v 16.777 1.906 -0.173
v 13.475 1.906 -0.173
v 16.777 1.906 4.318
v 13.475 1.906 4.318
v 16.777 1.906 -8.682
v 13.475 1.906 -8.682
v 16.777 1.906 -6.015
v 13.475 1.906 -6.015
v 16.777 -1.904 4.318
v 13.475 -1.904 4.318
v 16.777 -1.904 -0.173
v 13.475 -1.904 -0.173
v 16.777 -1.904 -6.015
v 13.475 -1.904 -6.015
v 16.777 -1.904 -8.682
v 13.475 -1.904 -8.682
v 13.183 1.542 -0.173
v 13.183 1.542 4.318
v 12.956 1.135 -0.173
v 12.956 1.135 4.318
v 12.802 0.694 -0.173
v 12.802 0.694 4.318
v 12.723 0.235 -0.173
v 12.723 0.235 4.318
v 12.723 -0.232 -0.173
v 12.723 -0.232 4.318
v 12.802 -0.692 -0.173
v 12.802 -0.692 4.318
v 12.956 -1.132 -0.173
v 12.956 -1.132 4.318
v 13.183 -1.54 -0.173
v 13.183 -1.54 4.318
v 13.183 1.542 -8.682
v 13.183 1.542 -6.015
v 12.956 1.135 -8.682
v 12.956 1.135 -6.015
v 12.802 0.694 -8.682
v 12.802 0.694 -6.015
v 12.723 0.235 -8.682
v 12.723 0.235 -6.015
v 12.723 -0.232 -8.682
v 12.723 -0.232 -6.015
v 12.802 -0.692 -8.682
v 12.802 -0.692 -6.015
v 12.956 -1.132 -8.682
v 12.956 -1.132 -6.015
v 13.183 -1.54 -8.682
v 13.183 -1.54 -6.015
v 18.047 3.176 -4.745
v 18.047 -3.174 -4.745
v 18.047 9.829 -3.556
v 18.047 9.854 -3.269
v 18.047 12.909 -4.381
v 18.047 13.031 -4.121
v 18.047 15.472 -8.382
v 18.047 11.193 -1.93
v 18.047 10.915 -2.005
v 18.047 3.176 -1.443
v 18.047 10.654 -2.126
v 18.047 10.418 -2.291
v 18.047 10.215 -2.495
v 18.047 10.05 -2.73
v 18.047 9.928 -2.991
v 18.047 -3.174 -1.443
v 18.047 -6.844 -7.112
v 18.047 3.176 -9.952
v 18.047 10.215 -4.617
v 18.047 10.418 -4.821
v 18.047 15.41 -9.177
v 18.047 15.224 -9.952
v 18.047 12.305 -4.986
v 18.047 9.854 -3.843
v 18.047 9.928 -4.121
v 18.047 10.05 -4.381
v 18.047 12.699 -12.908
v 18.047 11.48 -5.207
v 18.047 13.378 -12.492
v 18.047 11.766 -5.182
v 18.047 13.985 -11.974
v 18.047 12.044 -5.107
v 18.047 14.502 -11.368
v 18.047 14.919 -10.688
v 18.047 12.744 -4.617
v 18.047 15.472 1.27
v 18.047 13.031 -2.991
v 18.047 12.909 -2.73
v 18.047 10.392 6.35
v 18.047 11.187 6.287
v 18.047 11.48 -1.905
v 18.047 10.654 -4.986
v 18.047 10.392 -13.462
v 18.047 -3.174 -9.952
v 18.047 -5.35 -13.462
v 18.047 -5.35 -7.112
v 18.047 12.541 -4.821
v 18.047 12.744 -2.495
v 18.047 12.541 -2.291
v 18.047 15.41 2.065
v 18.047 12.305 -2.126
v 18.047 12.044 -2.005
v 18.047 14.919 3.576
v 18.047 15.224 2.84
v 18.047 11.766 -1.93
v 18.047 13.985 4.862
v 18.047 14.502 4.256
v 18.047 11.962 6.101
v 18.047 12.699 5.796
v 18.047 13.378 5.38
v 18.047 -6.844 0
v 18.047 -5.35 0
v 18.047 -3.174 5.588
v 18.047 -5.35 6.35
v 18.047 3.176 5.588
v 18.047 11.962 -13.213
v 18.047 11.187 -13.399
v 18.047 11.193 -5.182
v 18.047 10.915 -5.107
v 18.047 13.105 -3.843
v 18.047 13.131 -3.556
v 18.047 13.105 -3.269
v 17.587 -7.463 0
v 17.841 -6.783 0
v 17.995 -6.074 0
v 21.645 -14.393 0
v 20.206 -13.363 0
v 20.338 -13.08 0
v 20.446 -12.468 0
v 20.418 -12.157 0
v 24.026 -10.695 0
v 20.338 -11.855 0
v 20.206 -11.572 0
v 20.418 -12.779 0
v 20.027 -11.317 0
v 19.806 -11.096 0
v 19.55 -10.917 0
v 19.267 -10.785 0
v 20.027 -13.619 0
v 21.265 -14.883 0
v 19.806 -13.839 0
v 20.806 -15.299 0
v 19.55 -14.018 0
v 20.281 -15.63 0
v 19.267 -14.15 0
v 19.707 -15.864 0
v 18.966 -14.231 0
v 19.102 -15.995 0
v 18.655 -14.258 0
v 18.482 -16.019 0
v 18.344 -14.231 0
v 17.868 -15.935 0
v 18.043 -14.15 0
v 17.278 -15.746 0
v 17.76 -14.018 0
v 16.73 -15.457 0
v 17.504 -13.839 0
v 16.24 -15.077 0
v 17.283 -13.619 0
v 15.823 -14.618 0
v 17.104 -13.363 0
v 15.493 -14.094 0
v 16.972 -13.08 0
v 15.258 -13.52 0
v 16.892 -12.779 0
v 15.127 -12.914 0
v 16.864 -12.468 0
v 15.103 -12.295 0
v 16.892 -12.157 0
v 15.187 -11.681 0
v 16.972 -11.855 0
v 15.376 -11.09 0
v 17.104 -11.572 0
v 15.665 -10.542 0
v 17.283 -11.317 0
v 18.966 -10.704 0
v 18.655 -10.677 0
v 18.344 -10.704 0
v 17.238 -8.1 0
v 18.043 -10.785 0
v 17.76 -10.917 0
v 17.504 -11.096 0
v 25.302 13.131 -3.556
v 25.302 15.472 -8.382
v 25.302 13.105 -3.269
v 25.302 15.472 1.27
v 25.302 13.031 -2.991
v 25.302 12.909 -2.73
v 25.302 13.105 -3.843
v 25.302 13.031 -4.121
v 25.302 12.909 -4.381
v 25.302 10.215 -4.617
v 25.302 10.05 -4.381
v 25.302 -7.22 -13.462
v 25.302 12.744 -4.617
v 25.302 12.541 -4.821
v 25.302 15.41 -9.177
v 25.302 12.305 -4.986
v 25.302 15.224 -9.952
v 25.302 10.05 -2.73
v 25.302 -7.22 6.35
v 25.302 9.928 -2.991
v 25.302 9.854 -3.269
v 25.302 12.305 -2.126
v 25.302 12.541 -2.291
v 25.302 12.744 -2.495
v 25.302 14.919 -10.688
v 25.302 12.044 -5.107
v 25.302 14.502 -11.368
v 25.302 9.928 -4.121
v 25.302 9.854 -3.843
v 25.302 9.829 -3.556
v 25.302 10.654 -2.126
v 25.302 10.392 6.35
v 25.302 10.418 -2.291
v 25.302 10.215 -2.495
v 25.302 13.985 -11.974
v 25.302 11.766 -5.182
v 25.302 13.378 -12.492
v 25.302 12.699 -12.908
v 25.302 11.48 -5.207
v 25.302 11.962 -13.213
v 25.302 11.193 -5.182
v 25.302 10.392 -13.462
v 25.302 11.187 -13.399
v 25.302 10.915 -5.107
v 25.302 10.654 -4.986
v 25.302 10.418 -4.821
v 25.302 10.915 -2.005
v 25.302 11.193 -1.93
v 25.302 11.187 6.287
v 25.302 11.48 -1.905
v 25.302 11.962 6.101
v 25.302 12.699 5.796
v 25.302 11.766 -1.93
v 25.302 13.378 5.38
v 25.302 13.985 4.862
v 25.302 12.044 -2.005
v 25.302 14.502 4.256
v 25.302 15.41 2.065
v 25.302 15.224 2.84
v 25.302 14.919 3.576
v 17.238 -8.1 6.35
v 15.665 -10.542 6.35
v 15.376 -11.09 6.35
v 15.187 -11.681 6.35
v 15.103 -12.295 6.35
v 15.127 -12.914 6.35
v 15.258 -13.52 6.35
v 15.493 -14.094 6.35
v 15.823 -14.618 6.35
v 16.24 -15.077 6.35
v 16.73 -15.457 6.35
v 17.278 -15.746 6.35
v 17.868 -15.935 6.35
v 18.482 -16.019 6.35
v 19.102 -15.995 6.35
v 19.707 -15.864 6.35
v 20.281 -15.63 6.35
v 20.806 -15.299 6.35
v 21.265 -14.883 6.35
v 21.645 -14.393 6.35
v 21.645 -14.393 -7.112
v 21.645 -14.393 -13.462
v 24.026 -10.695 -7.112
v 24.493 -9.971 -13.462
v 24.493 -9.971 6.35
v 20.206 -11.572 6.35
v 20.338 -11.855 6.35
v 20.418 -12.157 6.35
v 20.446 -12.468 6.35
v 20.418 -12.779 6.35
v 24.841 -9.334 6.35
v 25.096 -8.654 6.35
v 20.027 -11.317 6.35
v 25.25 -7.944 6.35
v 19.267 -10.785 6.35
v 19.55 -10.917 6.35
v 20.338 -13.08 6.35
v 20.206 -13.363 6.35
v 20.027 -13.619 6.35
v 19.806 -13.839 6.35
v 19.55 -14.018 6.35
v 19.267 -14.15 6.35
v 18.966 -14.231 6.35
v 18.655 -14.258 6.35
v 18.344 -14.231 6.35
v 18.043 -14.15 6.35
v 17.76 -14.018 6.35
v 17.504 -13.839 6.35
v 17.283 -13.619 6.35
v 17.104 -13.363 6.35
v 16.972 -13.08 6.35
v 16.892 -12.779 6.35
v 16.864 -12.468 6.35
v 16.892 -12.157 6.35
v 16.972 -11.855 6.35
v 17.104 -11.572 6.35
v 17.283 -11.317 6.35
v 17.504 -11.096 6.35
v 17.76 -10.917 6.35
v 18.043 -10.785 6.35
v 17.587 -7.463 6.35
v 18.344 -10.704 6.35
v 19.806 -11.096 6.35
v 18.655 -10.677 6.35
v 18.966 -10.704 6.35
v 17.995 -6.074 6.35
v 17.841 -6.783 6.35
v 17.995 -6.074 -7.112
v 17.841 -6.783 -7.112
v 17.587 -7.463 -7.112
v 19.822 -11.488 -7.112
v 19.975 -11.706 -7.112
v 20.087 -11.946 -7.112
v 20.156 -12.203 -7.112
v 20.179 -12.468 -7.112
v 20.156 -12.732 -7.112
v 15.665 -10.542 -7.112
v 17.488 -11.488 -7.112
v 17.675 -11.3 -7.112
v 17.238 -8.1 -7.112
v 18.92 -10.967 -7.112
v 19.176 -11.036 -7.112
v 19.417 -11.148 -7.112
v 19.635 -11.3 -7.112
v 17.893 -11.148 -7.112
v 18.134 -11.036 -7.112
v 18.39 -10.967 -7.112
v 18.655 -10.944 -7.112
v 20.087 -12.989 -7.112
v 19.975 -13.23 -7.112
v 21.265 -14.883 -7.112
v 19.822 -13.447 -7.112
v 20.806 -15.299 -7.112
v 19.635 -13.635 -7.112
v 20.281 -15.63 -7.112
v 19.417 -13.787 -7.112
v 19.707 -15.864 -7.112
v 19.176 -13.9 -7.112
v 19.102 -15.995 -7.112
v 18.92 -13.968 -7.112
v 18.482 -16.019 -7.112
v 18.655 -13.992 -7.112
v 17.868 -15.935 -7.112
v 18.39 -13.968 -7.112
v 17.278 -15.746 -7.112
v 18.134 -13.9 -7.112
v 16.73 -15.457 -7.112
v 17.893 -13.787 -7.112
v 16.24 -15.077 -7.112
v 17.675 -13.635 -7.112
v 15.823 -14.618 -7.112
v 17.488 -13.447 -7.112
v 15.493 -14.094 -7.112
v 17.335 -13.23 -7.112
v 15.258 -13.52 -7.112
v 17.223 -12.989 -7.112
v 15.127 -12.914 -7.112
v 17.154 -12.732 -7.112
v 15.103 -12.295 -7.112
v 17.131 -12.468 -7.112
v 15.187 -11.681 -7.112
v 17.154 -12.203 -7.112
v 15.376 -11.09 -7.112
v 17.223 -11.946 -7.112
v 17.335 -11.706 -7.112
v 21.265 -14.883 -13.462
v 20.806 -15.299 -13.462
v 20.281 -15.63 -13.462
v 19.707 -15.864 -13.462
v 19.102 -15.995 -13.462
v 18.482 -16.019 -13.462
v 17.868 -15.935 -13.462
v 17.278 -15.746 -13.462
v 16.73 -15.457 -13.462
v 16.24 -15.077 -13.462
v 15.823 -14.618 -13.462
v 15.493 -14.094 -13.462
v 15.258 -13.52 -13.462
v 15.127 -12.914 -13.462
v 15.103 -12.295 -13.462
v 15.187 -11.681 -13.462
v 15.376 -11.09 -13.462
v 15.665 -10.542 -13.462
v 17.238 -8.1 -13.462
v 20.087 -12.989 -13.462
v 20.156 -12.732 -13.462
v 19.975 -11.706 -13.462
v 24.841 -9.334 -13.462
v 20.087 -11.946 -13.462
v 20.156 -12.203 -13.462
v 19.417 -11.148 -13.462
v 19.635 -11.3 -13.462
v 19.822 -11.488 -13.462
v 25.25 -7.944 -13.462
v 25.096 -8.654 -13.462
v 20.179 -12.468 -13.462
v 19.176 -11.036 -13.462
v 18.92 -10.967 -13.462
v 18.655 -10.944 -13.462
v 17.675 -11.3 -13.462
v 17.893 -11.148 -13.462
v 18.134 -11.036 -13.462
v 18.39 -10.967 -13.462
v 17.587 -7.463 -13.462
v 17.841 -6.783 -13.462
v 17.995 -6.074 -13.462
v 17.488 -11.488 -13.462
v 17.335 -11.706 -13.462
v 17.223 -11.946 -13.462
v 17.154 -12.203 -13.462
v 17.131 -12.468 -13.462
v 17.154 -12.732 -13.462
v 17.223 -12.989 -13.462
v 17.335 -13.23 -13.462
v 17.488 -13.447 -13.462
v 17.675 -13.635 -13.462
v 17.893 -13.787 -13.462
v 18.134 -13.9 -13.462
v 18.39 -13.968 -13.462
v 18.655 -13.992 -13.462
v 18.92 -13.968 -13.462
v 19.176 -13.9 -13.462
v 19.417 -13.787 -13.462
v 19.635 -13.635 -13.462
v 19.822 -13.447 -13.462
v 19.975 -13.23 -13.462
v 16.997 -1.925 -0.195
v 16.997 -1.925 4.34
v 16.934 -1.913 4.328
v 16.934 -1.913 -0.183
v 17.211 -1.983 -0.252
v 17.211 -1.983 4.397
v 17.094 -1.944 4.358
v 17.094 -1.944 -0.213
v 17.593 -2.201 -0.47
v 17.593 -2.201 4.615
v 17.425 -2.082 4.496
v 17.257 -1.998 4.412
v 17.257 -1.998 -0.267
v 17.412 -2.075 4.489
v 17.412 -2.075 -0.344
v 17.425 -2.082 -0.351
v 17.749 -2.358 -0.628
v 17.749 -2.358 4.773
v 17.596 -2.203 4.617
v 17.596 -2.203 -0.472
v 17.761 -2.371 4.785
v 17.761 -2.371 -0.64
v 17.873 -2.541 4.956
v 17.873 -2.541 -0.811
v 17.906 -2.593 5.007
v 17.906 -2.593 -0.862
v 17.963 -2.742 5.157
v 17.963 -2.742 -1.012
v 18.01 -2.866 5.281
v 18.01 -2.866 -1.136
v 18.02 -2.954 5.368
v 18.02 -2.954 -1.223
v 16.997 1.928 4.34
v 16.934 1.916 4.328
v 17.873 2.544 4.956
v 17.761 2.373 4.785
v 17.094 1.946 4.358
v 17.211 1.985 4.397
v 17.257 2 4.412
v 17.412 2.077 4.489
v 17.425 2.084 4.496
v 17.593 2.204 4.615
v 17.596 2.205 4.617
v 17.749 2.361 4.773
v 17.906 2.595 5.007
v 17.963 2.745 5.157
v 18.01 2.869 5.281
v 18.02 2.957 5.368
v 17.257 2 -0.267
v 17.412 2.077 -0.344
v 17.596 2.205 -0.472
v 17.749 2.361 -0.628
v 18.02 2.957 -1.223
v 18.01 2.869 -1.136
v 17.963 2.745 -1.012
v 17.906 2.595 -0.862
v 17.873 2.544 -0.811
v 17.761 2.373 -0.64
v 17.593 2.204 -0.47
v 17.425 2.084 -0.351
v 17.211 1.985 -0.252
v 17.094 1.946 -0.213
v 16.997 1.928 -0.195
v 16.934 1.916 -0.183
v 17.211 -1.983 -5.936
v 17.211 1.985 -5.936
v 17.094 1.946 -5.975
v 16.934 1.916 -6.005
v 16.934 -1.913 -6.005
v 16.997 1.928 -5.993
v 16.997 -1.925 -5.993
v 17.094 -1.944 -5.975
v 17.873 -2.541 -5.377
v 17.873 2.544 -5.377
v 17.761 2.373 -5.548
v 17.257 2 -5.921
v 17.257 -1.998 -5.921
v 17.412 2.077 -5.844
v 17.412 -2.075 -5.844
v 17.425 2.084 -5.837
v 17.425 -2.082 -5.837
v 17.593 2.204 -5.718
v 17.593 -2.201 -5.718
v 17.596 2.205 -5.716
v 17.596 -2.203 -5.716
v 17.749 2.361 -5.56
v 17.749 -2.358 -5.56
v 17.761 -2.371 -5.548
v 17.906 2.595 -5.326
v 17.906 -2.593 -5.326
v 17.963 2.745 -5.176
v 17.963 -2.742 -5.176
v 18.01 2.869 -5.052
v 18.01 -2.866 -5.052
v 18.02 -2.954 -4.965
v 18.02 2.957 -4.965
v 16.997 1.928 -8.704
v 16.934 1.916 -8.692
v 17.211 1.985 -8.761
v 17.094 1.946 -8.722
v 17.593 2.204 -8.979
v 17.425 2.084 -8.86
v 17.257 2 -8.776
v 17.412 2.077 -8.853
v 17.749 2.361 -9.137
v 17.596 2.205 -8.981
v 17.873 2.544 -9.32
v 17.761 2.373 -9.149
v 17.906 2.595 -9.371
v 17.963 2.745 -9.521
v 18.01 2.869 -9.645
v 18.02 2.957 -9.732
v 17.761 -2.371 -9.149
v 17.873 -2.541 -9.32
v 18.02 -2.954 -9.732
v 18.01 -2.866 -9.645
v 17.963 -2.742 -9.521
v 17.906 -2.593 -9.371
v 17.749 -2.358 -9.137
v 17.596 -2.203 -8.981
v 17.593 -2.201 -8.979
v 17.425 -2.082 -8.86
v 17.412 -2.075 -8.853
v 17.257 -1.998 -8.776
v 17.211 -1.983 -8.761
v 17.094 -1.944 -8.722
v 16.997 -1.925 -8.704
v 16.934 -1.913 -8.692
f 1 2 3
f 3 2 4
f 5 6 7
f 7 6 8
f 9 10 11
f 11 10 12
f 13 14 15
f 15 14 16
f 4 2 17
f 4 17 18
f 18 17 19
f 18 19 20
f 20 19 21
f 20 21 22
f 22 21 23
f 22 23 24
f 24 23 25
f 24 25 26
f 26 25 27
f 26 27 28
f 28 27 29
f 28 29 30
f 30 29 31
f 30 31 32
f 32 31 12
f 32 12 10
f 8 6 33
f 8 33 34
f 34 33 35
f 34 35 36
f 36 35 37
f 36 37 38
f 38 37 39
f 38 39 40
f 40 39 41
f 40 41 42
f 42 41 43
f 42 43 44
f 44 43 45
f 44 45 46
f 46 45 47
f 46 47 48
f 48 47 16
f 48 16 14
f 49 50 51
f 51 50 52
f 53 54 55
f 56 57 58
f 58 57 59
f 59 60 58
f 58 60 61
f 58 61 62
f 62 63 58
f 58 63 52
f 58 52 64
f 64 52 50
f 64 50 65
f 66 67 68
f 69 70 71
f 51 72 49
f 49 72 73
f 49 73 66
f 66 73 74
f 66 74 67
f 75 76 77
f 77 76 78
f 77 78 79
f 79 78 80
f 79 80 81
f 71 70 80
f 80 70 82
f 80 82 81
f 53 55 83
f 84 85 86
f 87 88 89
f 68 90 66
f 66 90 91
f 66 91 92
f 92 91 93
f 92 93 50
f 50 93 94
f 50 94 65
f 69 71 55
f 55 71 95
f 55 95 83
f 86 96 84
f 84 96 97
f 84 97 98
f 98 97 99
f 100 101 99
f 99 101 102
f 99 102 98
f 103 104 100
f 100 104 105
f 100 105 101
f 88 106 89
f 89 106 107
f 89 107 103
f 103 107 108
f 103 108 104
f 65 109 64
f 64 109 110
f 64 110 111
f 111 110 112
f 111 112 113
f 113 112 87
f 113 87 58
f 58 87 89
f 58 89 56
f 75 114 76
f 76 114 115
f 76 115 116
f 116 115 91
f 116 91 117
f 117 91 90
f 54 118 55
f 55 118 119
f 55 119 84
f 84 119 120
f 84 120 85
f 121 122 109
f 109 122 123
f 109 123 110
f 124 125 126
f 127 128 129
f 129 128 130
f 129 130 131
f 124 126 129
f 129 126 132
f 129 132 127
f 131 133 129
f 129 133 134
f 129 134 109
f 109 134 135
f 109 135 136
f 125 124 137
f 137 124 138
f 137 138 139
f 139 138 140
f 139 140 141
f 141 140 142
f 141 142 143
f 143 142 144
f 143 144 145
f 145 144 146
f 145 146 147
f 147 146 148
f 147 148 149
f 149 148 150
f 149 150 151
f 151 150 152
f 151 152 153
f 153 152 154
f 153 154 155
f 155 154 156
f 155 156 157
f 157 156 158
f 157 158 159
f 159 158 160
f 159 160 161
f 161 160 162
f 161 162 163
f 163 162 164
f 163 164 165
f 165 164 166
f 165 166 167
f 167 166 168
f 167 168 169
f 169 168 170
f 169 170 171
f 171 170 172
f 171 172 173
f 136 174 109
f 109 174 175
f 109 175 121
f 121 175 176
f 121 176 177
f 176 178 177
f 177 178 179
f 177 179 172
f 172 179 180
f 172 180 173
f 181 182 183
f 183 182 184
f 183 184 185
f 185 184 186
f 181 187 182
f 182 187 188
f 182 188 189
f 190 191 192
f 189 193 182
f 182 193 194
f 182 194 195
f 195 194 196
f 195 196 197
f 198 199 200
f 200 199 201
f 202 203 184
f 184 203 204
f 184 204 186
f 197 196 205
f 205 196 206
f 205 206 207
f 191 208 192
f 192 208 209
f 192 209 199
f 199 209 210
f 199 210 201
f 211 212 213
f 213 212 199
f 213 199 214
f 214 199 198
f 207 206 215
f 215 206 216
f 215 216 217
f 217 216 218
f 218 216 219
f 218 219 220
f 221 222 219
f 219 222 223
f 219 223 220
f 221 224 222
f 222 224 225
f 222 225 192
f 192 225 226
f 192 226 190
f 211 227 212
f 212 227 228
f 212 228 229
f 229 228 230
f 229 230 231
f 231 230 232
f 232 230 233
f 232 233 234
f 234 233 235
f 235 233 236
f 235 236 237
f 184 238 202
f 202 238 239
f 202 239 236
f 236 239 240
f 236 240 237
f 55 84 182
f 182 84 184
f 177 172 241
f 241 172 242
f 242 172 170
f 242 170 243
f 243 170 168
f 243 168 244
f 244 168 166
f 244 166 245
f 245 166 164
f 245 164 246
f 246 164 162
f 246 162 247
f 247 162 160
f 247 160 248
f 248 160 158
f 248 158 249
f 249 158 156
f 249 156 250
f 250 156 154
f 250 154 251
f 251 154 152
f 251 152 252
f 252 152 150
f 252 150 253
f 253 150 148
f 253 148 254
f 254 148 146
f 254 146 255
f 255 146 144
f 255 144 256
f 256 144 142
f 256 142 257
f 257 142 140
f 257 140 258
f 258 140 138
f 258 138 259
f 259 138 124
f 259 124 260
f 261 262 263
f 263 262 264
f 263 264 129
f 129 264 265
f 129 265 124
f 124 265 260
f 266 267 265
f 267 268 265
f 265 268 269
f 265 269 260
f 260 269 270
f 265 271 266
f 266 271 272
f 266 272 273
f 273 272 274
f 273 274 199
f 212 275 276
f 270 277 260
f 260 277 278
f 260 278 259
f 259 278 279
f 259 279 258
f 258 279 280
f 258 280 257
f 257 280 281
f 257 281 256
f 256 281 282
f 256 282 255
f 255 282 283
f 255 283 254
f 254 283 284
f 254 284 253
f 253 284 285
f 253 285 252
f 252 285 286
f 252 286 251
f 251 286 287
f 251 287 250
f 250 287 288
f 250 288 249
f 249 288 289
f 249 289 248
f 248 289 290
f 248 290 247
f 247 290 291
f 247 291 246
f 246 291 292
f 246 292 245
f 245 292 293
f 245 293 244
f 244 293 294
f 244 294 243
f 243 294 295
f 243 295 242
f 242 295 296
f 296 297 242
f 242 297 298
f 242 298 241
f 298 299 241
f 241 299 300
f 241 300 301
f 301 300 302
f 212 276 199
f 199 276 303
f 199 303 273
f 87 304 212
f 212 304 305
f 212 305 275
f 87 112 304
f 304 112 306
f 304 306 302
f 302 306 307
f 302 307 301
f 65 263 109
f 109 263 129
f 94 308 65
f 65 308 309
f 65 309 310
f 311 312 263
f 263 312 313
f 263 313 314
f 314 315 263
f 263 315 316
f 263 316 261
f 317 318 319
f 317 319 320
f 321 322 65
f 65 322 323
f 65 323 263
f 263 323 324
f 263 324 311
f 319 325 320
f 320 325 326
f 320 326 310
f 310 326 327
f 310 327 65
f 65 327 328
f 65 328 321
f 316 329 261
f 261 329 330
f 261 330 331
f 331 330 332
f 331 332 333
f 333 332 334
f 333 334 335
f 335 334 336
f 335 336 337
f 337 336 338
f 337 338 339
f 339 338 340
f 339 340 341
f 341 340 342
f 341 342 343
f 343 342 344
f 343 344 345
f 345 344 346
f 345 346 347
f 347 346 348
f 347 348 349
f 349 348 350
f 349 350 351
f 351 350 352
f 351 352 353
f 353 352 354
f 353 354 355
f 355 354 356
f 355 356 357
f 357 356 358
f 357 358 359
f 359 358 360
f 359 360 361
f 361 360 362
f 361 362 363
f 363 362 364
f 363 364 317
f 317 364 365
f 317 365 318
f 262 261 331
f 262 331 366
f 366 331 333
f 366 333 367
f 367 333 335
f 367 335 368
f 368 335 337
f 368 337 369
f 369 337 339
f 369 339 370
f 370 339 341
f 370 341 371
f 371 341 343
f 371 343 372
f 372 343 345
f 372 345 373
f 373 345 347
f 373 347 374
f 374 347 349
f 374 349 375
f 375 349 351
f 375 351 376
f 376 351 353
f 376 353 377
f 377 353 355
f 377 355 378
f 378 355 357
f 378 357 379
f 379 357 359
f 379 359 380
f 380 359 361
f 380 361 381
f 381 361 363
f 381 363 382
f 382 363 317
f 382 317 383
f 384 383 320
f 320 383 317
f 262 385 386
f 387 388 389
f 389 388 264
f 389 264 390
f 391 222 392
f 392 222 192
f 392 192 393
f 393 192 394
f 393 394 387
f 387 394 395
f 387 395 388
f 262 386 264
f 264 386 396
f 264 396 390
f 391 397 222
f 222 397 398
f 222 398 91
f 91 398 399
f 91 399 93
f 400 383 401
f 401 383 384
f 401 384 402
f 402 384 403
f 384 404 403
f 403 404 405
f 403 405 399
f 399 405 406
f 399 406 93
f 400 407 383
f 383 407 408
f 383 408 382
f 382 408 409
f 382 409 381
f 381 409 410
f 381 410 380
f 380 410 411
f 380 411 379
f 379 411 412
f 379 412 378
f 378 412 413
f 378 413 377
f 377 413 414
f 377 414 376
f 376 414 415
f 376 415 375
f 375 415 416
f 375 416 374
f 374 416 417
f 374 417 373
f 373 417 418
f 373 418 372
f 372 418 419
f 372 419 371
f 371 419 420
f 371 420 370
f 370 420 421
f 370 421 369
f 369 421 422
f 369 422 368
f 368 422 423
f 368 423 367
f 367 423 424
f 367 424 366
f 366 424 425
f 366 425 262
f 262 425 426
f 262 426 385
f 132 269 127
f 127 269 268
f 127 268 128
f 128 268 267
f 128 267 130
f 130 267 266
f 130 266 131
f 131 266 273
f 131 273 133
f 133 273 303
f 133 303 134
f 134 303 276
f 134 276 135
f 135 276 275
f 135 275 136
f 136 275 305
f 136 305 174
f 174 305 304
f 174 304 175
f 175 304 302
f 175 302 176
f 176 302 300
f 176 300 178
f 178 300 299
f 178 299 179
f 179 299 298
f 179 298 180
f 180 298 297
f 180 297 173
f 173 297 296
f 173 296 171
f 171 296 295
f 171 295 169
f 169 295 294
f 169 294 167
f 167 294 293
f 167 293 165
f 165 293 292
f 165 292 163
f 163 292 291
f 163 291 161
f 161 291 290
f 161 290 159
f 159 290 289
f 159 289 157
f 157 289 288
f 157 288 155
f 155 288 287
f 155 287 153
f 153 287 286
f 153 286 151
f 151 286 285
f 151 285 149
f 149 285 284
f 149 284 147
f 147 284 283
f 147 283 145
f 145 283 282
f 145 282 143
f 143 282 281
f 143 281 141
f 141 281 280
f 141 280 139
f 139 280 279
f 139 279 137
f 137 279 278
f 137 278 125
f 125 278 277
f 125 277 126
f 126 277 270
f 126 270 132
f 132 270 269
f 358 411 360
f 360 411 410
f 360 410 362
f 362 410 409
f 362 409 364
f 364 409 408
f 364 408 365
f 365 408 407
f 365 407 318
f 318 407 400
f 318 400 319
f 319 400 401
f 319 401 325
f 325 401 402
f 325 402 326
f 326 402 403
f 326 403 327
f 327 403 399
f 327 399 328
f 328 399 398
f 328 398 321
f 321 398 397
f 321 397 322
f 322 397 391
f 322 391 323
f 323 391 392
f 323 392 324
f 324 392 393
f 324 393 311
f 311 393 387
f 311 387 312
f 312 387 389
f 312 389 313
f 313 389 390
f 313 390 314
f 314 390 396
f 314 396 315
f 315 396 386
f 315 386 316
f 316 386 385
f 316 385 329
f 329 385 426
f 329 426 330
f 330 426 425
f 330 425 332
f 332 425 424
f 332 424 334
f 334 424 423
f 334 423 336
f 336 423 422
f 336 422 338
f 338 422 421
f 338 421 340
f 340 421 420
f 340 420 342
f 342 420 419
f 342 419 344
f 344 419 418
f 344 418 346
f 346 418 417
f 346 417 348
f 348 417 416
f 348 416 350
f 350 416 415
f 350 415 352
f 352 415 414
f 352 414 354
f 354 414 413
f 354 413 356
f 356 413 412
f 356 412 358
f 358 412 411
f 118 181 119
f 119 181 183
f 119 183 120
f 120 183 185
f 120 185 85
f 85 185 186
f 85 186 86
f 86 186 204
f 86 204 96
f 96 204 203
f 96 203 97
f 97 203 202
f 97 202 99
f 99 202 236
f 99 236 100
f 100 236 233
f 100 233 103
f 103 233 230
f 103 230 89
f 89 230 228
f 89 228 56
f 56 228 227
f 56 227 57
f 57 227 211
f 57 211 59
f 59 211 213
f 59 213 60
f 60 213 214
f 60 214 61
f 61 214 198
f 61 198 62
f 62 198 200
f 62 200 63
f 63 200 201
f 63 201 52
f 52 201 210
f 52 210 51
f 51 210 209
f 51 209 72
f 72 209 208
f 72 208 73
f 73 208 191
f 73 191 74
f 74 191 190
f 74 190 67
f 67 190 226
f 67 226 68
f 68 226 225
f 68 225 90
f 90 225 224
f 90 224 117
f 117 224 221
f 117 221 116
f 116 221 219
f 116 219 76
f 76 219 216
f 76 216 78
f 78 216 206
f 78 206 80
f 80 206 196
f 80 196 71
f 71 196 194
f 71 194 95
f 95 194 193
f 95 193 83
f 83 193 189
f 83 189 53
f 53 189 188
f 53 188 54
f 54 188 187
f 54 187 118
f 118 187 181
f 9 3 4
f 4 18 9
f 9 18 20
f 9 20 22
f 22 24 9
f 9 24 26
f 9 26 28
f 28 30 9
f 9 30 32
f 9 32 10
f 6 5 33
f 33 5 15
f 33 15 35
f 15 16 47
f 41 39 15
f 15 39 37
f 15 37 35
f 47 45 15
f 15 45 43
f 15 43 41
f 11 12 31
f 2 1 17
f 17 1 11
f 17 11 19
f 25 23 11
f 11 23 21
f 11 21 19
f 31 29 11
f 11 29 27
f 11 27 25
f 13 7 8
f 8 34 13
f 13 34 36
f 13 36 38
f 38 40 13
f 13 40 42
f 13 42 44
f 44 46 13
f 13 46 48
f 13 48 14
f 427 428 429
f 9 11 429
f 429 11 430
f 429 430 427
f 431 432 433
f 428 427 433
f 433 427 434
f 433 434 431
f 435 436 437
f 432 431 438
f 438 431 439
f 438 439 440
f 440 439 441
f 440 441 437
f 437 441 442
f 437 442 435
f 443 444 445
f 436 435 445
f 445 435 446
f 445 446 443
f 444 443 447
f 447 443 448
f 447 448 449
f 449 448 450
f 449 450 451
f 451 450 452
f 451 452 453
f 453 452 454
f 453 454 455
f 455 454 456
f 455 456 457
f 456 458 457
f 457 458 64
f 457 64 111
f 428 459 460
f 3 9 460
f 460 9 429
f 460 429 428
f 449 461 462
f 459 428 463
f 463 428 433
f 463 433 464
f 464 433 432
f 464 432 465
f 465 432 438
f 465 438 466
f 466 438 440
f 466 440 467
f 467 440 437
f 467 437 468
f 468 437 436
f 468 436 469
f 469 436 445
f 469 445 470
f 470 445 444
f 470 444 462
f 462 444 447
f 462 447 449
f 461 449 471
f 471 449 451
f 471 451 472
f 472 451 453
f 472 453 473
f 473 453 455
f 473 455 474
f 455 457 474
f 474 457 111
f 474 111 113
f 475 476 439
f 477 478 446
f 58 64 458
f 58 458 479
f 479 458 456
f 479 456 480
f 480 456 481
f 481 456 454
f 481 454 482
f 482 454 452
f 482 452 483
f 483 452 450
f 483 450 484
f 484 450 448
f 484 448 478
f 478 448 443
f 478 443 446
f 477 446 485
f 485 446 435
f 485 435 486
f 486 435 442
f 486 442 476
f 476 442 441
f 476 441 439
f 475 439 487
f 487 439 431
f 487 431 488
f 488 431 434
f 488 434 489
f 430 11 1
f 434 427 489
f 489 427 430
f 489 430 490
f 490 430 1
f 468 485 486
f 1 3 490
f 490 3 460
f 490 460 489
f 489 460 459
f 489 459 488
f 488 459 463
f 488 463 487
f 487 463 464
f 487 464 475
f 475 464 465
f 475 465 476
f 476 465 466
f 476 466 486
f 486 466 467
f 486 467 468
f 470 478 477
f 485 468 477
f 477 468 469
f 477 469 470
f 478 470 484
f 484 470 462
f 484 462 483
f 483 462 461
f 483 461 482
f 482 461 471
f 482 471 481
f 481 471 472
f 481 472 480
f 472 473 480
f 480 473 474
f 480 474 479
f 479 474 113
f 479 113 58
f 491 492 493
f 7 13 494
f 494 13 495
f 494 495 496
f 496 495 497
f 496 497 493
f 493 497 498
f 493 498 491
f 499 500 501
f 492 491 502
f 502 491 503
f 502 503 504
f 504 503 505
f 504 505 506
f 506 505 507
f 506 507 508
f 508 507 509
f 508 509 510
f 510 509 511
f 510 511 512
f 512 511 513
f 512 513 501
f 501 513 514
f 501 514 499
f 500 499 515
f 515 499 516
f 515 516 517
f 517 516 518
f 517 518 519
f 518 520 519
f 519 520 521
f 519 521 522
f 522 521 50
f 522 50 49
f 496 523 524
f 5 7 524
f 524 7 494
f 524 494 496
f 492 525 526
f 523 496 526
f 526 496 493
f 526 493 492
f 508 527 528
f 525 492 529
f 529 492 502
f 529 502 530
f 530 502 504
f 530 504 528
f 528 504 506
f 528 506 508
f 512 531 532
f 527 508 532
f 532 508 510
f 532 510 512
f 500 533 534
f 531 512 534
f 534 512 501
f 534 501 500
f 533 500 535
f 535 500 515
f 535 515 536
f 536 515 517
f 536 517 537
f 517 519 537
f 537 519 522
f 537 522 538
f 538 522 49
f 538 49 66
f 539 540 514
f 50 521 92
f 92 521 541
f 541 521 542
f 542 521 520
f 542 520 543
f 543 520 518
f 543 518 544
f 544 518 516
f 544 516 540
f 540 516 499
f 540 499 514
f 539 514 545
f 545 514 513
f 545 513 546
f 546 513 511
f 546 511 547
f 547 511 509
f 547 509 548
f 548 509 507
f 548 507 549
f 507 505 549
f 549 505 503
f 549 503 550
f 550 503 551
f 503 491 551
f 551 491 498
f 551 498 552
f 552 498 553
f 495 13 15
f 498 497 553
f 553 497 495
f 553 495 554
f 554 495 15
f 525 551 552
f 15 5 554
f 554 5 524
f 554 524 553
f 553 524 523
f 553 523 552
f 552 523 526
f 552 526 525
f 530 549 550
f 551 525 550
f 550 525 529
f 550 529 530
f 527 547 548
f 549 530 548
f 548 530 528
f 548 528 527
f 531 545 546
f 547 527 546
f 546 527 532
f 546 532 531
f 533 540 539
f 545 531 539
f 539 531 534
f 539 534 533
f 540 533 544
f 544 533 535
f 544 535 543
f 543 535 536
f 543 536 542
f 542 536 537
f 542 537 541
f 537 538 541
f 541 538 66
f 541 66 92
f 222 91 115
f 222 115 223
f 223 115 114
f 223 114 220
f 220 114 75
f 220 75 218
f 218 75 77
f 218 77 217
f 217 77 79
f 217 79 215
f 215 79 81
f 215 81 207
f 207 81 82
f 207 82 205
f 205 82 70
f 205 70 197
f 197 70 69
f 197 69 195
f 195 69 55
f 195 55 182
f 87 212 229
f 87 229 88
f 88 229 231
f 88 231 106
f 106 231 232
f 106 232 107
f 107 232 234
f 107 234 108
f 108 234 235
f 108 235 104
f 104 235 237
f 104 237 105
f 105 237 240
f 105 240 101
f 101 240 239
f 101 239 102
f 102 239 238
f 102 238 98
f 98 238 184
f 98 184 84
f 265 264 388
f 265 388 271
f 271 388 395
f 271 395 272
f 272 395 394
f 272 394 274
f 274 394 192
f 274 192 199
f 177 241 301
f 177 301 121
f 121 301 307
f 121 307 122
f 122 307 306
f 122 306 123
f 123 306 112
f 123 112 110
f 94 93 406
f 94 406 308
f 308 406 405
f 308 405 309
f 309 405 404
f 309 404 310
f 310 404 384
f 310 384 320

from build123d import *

# Parameters (mm, degrees)
BOSS_EXTRUDE1_DEPTH = 6.35
BOSS_EXTRUDE2_DEPTH = 7.112
BOSS_EXTRUDE3_START = 6.35
BOSS_EXTRUDE3_DEPTH = 6.35
CUT_EXTRUDE1_REACH  = 37.909
SKETCH5_R           = 1.7907
CUT_EXTRUDE2_REACH  = 37.909
SKETCH6_R           = 1.524
SKETCH7_R           = 1.651
CUT_EXTRUDE3_DEPTH  = 24.282660099
SKETCH9_W           = 13
SKETCH9_H           = 3.81
BOSS_EXTRUDE4_DEPTH = 5.334
CUT_EXTRUDE4_DEPTH  = 34.50981373
SKETCH11_W          = 5.842
SKETCH11_H          = 8.036223638
CUT_EXTRUDE5_DEPTH  = 23.149777145
FILLET2_R           = 1.27
FILLET3_R           = 5.08
FILLET4_R           = 5.08


with BuildPart() as part:
    # Sketch2 → Boss-Extrude1 (new body)
    with BuildSketch(Plane.XY):
        with BuildLine():
            Line((21.644583215, -14.393094274), (25.301992713, -8.71448479))
            Line((25.301992713, -8.71448479), (25.301992713, 15.4724))
            Line((25.301992713, 15.4724), (18.047240712, 15.4724))
            Line((18.047240712, 15.4724), (18.047240712, -6.844010681))
            Line((18.047240712, -6.844010681), (15.665416785, -10.542105726))
            ThreePointArc((15.665416785, -10.542105726), (16.729505726, -15.457183215), (21.644583215, -14.393094274))
        make_face()
    extrude(amount=BOSS_EXTRUDE1_DEPTH)

    # Sketch3 → Boss-Extrude2 (add)
    with BuildSketch(Plane(origin=(0, 0, 0), x_dir=(-1, 0, 0), z_dir=(0, 0, -1))):
        Polygon((-18.047240712, -6.844010681), (-24.026407143, -10.694999229), (-25.301992713, -8.71448479), (-25.301992713, 15.4724), (-18.047240712, 15.4724), align=None)
    extrude(amount=BOSS_EXTRUDE2_DEPTH)

    # Sketch4 → Boss-Extrude3 (add)
    with BuildSketch(Plane(origin=(0, 0, -7.112), x_dir=(-1, 0, 0), z_dir=(0, 0, -1)).offset(BOSS_EXTRUDE3_START)):
        with BuildLine():
            Line((-25.301992713, 15.4724), (-25.301992713, -8.71448479))
            Line((-25.301992713, -8.71448479), (-21.644583215, -14.393094274))
            ThreePointArc((-21.644583215, -14.393094274), (-16.729505726, -15.457183215), (-15.665416785, -10.542105726))
            Line((-15.665416785, -10.542105726), (-18.047240712, -6.844010681))
            Line((-18.047240712, -6.844010681), (-18.047240712, 15.4724))
            Line((-18.047240712, 15.4724), (-25.301992713, 15.4724))
        make_face()
    extrude(amount=-BOSS_EXTRUDE3_DEPTH)

    # Sketch5 → Cut-Extrude1 (cut, up to next)
    with BuildSketch(Plane.XY.offset(6.35), mode=Mode.PRIVATE) as cut_extrude1_sk1:
        with Locations((18.655, -12.4676)):
            Circle(SKETCH5_R)
    cut_extrude1_tool1 = extrude(cut_extrude1_sk1.sketch, amount=-CUT_EXTRUDE1_REACH, mode=Mode.PRIVATE) & part.part
    add(cut_extrude1_tool1.solids().sort_by_distance((18.655, -12.4676, 6.35))[0], mode=Mode.SUBTRACT)

    # Sketch6 → Cut-Extrude2 (cut, up to next)
    with BuildSketch(Plane(origin=(0, 0, -13.462), x_dir=(-1, 0, 0), z_dir=(0, 0, -1)), mode=Mode.PRIVATE) as cut_extrude2_sk1:
        with Locations((-18.655, -12.4676)):
            Circle(SKETCH6_R)
    cut_extrude2_tool1 = extrude(cut_extrude2_sk1.sketch, amount=-CUT_EXTRUDE2_REACH, mode=Mode.PRIVATE) & part.part
    add(cut_extrude2_tool1.solids().sort_by_distance((18.655, -12.4676, -13.462))[0], mode=Mode.SUBTRACT)

    # Sketch7 → Cut-Extrude3 (cut, through all)
    with BuildSketch(Plane(origin=(25.301992713, 0, 0), x_dir=(0, 0, -1), z_dir=(1, 0, 0))):
        with Locations((3.556, 11.47952)):
            Circle(SKETCH7_R)
    extrude(amount=-CUT_EXTRUDE3_DEPTH, mode=Mode.SUBTRACT)

    # Sketch9 → Boss-Extrude4 (add)
    with BuildSketch(Plane.ZY.offset(-18.047240712)):
        with Locations((-2.182, 0.00126)):
            Rectangle(SKETCH9_W, SKETCH9_H)
    extrude(amount=BOSS_EXTRUDE4_DEPTH)

    # Sketch10 → Cut-Extrude4 (cut, through all)
    with BuildSketch(Plane(origin=(0, 0, -8.682), x_dir=(-1, 0, 0), z_dir=(0, 0, -1))):
        with BuildLine():
            Line((-13.475240712, 1.90626), (-13.475240712, 3.862647324))
            Line((-13.475240712, 3.862647324), (-11.787992586, 3.862647324))
            Line((-11.787992586, 3.862647324), (-11.787992586, -3.9659176))
            Line((-11.787992586, -3.9659176), (-13.475240712, -3.9659176))
            Line((-13.475240712, -3.9659176), (-13.475240712, -1.90374))
            ThreePointArc((-13.475240712, -1.90374), (-12.713240712, 0.00126), (-13.475240712, 1.90626))
        make_face()
    extrude(amount=-CUT_EXTRUDE4_DEPTH, mode=Mode.SUBTRACT)

    # Sketch11 → Cut-Extrude5 (cut, through all)
    with BuildSketch(Plane.ZY.offset(-18.047240712)):
        with Locations((-3.094, 0.00126)):
            Rectangle(SKETCH11_W, SKETCH11_H)
    extrude(amount=CUT_EXTRUDE5_DEPTH, mode=Mode.SUBTRACT)

    # Fillet2
    fillet2_edges = [part.edges().sort_by_distance(p)[0] for p in [
        (18.047240712, 1.90626, 2.0725),
        (18.047240712, 0.00126, 4.318),
        (18.047240712, -1.90374, 2.0725),
        (18.047240712, 0.00126, -0.173),
        (18.047240712, 0.00126, -8.682),
        (18.047240712, -1.90374, -7.3485),
        (18.047240712, 1.90626, -7.3485),
        (18.047240712, 0.00126, -6.015),
    ]]
    fillet(fillet2_edges, radius=FILLET2_R)

    # Fillet3
    fillet3_edges = [part.edges().sort_by_distance(p)[0] for p in [
        (21.674616713, 15.4724, -13.462),
        (21.674616713, 15.4724, 6.35),
    ]]
    fillet(fillet3_edges, radius=FILLET3_R)

    # Fillet4
    fillet4_edges = [part.edges().sort_by_distance(p)[0] for p in [
        (25.301992713, -8.71448479, -3.556),
        (18.047240712, -6.844010681, 3.175),
        (18.047240712, -6.844010681, -10.287),
    ]]
    fillet(fillet4_edges, radius=FILLET4_R)


solid = part.part
